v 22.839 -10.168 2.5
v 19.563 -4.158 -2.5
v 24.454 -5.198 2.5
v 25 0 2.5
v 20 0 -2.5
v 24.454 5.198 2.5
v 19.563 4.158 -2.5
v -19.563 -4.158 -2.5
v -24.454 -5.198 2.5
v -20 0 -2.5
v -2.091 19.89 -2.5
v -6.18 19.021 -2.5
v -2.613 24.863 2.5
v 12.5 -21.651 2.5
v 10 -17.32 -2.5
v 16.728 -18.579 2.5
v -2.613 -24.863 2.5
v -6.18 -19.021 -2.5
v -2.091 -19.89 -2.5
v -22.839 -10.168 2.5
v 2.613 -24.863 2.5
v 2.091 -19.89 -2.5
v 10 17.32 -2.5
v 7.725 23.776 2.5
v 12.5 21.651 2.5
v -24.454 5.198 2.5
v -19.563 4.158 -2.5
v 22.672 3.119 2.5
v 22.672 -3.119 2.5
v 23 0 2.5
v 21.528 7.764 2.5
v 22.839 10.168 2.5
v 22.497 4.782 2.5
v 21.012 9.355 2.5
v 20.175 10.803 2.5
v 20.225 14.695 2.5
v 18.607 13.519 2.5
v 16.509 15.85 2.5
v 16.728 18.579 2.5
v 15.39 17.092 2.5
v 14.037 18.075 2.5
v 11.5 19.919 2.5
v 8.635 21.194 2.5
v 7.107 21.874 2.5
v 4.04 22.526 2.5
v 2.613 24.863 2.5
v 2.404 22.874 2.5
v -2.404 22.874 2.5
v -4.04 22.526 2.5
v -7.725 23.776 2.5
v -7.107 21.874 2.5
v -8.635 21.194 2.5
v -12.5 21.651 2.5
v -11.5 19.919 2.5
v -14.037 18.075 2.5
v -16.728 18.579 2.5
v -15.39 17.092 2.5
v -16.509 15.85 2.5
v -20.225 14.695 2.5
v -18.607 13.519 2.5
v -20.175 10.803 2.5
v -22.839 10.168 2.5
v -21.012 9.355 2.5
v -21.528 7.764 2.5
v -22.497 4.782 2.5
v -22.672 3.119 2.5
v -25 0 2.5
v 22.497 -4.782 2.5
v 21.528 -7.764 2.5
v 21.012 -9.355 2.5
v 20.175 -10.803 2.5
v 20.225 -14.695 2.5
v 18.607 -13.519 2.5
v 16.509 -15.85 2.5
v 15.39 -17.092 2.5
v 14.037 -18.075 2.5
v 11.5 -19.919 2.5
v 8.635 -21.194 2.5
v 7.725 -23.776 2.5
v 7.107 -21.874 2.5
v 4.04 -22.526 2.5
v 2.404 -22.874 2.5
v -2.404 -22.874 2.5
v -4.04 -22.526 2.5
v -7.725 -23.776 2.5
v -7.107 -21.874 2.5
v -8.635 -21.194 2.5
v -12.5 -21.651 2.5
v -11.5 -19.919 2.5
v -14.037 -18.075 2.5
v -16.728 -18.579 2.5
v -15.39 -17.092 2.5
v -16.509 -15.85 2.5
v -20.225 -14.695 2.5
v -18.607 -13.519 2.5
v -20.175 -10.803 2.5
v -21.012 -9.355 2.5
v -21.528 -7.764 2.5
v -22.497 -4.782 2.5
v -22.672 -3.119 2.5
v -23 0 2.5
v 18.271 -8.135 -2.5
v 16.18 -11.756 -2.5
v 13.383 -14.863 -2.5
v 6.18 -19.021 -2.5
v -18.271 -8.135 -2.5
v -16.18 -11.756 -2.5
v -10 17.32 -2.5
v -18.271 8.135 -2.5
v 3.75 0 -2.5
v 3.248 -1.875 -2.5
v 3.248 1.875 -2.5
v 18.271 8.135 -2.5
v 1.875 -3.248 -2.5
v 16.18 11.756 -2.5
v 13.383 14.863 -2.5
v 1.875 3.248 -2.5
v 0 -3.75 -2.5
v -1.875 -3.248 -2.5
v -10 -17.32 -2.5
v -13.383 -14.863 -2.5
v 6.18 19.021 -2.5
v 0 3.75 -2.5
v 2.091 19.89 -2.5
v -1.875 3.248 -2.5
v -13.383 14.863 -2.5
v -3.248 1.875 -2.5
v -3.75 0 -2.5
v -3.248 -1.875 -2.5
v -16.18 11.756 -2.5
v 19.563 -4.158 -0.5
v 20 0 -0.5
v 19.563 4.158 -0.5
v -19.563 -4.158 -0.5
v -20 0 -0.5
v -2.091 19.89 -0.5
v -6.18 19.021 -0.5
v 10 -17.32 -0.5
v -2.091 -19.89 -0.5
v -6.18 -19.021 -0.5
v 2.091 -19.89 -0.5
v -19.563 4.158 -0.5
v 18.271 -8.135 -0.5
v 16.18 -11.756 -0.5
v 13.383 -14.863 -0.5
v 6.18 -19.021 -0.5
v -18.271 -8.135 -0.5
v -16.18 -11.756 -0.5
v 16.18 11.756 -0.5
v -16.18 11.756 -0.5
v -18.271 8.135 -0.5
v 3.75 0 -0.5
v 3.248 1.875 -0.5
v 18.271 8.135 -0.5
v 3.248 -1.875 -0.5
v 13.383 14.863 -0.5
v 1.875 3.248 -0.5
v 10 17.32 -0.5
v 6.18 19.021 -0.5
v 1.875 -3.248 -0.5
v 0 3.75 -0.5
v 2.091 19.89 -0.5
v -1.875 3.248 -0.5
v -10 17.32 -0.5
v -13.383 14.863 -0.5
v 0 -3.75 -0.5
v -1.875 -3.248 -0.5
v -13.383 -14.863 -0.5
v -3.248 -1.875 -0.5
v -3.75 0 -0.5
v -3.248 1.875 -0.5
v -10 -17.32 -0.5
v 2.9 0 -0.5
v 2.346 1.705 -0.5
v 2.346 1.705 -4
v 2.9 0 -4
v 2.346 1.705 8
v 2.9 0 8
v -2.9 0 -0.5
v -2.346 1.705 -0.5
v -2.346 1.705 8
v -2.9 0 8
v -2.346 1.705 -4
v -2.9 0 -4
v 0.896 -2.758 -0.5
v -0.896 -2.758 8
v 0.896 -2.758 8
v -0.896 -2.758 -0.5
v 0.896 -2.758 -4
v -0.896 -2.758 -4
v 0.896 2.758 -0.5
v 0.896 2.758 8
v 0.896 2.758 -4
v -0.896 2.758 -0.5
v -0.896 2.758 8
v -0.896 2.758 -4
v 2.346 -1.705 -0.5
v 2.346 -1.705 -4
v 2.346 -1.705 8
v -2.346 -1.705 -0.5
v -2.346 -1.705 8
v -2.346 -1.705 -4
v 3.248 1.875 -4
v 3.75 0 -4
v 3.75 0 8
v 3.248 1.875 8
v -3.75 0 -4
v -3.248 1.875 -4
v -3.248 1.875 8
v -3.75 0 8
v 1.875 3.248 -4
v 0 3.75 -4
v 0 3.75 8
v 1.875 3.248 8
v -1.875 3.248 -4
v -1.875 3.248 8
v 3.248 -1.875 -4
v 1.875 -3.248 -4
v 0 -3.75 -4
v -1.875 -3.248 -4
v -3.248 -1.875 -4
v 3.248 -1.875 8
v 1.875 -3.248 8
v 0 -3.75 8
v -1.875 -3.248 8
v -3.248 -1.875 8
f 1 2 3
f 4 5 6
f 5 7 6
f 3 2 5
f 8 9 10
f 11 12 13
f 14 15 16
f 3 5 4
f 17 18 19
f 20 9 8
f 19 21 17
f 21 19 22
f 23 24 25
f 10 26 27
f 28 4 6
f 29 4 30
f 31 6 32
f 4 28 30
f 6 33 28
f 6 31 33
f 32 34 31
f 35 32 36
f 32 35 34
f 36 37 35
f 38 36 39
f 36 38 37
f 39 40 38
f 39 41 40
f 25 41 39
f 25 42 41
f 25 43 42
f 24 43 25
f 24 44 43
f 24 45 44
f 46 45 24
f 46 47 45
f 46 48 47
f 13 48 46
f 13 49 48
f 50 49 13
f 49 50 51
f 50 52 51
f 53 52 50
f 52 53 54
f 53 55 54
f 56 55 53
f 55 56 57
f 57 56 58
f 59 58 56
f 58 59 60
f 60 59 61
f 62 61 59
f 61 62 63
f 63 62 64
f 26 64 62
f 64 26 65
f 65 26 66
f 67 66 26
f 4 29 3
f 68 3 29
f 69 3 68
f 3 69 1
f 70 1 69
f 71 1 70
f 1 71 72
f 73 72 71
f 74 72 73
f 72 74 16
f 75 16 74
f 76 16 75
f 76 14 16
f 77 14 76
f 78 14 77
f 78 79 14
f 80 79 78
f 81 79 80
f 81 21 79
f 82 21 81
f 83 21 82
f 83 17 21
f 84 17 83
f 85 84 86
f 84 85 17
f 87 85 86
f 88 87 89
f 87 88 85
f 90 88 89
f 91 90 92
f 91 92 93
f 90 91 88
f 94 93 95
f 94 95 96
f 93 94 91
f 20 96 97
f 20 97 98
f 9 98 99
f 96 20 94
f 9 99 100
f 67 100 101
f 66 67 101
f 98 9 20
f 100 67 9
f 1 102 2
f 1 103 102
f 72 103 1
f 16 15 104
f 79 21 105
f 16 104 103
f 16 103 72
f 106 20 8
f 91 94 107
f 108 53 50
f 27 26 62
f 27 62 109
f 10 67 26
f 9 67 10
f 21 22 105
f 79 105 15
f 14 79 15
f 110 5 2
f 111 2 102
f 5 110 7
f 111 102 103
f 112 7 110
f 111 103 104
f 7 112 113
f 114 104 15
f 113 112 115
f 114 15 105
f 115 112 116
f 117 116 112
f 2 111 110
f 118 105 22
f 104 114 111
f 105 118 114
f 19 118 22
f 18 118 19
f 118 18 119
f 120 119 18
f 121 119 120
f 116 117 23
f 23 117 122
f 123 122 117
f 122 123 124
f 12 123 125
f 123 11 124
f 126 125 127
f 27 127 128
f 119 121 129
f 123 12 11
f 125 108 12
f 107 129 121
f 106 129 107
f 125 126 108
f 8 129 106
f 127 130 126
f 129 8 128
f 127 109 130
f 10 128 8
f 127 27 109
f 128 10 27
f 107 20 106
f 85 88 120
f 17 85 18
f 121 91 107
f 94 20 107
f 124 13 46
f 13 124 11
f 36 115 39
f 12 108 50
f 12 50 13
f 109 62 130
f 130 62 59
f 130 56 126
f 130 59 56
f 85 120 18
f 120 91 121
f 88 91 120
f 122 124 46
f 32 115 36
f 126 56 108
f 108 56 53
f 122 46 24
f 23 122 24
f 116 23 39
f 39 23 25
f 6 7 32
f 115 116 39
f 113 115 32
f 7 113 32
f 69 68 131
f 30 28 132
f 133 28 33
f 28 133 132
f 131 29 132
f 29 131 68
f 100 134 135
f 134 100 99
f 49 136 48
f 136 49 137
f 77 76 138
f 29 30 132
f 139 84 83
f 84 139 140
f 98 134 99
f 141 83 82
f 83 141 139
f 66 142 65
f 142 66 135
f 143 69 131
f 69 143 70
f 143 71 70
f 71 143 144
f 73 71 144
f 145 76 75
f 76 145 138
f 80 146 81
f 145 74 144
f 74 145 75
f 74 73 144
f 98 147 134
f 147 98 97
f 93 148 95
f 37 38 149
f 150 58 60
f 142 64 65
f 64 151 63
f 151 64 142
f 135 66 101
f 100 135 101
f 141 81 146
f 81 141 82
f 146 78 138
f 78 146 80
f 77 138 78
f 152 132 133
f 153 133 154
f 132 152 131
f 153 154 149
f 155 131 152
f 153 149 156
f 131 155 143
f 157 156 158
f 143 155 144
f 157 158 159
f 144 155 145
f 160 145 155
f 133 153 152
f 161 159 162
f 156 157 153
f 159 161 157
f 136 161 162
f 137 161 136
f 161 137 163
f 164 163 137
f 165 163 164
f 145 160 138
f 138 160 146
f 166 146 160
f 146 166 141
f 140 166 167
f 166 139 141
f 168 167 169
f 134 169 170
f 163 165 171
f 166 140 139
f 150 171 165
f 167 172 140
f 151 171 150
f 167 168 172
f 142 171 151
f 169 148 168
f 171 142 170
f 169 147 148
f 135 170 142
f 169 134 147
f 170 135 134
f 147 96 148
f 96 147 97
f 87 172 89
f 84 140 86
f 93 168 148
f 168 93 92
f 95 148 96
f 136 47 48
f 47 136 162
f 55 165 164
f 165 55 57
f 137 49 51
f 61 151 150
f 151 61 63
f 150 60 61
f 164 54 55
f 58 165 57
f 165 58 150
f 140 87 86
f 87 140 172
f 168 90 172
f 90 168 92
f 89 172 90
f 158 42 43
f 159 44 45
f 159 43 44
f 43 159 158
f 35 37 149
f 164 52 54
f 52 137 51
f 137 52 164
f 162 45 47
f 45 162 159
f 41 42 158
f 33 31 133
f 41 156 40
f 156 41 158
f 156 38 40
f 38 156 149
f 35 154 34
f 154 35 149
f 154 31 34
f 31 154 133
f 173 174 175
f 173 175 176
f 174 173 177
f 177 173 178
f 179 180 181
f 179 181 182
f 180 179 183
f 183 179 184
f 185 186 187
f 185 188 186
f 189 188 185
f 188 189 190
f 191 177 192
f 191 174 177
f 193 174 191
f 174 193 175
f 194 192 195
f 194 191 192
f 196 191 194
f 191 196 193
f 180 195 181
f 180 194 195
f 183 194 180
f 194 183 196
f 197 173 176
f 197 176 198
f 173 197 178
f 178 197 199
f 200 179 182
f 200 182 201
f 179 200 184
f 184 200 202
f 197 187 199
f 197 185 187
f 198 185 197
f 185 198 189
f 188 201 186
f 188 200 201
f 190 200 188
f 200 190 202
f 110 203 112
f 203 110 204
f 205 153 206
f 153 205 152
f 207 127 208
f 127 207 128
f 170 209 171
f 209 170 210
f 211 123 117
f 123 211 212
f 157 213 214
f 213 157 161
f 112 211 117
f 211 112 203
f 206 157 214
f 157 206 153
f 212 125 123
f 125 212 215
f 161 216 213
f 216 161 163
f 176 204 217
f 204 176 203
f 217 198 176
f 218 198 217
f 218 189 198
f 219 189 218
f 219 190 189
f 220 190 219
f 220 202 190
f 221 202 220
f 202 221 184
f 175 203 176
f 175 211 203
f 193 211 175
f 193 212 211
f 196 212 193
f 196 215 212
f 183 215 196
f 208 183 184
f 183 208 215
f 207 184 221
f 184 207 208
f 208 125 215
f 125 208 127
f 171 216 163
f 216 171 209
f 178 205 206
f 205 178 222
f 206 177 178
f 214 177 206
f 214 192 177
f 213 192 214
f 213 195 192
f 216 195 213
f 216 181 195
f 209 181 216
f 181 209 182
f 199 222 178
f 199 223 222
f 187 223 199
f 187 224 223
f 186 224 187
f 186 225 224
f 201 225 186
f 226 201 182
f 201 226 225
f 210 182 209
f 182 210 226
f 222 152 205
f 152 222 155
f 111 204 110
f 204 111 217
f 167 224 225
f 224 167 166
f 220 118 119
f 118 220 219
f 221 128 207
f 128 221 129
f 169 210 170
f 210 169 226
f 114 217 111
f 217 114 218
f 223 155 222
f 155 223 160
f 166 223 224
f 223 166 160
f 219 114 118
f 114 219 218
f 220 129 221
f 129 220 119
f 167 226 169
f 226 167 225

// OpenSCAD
//$fn=50;

pole_width = 2.9;
pole_thickness = 1.7;
post_height = 12;
b_w = 2;
b_h = 5;
b_i = 20;
b_o = 25;
post_offset = 4;

union() {
difference() {
    basket(b_i, b_o, b_w, b_h);
    post(0, pole_width*2, 8, post_offset);
}
}
post(pole_width, pole_thickness, post_height, post_offset);

module basket (r1, r2, w, h) {
        difference () {
        cylinder(h = h, r1 = r1, r2 = r2, center=true);
        translate([0, 0, w]) 
            cylinder(h = h, r1 = r1, r2 = r2, center=true);
    }
} 

module post (r, w, h, offset) {
    translate([0,0,-offset]) difference (){
        cylinder(h = h, r1 = r+(w/2), r2 = r+(w/2));
        translate([0,0,-0.1])
        scale([1,1,1.2]) 
        cylinder(h = h, r1 = r, r2 = r);
    }
}
